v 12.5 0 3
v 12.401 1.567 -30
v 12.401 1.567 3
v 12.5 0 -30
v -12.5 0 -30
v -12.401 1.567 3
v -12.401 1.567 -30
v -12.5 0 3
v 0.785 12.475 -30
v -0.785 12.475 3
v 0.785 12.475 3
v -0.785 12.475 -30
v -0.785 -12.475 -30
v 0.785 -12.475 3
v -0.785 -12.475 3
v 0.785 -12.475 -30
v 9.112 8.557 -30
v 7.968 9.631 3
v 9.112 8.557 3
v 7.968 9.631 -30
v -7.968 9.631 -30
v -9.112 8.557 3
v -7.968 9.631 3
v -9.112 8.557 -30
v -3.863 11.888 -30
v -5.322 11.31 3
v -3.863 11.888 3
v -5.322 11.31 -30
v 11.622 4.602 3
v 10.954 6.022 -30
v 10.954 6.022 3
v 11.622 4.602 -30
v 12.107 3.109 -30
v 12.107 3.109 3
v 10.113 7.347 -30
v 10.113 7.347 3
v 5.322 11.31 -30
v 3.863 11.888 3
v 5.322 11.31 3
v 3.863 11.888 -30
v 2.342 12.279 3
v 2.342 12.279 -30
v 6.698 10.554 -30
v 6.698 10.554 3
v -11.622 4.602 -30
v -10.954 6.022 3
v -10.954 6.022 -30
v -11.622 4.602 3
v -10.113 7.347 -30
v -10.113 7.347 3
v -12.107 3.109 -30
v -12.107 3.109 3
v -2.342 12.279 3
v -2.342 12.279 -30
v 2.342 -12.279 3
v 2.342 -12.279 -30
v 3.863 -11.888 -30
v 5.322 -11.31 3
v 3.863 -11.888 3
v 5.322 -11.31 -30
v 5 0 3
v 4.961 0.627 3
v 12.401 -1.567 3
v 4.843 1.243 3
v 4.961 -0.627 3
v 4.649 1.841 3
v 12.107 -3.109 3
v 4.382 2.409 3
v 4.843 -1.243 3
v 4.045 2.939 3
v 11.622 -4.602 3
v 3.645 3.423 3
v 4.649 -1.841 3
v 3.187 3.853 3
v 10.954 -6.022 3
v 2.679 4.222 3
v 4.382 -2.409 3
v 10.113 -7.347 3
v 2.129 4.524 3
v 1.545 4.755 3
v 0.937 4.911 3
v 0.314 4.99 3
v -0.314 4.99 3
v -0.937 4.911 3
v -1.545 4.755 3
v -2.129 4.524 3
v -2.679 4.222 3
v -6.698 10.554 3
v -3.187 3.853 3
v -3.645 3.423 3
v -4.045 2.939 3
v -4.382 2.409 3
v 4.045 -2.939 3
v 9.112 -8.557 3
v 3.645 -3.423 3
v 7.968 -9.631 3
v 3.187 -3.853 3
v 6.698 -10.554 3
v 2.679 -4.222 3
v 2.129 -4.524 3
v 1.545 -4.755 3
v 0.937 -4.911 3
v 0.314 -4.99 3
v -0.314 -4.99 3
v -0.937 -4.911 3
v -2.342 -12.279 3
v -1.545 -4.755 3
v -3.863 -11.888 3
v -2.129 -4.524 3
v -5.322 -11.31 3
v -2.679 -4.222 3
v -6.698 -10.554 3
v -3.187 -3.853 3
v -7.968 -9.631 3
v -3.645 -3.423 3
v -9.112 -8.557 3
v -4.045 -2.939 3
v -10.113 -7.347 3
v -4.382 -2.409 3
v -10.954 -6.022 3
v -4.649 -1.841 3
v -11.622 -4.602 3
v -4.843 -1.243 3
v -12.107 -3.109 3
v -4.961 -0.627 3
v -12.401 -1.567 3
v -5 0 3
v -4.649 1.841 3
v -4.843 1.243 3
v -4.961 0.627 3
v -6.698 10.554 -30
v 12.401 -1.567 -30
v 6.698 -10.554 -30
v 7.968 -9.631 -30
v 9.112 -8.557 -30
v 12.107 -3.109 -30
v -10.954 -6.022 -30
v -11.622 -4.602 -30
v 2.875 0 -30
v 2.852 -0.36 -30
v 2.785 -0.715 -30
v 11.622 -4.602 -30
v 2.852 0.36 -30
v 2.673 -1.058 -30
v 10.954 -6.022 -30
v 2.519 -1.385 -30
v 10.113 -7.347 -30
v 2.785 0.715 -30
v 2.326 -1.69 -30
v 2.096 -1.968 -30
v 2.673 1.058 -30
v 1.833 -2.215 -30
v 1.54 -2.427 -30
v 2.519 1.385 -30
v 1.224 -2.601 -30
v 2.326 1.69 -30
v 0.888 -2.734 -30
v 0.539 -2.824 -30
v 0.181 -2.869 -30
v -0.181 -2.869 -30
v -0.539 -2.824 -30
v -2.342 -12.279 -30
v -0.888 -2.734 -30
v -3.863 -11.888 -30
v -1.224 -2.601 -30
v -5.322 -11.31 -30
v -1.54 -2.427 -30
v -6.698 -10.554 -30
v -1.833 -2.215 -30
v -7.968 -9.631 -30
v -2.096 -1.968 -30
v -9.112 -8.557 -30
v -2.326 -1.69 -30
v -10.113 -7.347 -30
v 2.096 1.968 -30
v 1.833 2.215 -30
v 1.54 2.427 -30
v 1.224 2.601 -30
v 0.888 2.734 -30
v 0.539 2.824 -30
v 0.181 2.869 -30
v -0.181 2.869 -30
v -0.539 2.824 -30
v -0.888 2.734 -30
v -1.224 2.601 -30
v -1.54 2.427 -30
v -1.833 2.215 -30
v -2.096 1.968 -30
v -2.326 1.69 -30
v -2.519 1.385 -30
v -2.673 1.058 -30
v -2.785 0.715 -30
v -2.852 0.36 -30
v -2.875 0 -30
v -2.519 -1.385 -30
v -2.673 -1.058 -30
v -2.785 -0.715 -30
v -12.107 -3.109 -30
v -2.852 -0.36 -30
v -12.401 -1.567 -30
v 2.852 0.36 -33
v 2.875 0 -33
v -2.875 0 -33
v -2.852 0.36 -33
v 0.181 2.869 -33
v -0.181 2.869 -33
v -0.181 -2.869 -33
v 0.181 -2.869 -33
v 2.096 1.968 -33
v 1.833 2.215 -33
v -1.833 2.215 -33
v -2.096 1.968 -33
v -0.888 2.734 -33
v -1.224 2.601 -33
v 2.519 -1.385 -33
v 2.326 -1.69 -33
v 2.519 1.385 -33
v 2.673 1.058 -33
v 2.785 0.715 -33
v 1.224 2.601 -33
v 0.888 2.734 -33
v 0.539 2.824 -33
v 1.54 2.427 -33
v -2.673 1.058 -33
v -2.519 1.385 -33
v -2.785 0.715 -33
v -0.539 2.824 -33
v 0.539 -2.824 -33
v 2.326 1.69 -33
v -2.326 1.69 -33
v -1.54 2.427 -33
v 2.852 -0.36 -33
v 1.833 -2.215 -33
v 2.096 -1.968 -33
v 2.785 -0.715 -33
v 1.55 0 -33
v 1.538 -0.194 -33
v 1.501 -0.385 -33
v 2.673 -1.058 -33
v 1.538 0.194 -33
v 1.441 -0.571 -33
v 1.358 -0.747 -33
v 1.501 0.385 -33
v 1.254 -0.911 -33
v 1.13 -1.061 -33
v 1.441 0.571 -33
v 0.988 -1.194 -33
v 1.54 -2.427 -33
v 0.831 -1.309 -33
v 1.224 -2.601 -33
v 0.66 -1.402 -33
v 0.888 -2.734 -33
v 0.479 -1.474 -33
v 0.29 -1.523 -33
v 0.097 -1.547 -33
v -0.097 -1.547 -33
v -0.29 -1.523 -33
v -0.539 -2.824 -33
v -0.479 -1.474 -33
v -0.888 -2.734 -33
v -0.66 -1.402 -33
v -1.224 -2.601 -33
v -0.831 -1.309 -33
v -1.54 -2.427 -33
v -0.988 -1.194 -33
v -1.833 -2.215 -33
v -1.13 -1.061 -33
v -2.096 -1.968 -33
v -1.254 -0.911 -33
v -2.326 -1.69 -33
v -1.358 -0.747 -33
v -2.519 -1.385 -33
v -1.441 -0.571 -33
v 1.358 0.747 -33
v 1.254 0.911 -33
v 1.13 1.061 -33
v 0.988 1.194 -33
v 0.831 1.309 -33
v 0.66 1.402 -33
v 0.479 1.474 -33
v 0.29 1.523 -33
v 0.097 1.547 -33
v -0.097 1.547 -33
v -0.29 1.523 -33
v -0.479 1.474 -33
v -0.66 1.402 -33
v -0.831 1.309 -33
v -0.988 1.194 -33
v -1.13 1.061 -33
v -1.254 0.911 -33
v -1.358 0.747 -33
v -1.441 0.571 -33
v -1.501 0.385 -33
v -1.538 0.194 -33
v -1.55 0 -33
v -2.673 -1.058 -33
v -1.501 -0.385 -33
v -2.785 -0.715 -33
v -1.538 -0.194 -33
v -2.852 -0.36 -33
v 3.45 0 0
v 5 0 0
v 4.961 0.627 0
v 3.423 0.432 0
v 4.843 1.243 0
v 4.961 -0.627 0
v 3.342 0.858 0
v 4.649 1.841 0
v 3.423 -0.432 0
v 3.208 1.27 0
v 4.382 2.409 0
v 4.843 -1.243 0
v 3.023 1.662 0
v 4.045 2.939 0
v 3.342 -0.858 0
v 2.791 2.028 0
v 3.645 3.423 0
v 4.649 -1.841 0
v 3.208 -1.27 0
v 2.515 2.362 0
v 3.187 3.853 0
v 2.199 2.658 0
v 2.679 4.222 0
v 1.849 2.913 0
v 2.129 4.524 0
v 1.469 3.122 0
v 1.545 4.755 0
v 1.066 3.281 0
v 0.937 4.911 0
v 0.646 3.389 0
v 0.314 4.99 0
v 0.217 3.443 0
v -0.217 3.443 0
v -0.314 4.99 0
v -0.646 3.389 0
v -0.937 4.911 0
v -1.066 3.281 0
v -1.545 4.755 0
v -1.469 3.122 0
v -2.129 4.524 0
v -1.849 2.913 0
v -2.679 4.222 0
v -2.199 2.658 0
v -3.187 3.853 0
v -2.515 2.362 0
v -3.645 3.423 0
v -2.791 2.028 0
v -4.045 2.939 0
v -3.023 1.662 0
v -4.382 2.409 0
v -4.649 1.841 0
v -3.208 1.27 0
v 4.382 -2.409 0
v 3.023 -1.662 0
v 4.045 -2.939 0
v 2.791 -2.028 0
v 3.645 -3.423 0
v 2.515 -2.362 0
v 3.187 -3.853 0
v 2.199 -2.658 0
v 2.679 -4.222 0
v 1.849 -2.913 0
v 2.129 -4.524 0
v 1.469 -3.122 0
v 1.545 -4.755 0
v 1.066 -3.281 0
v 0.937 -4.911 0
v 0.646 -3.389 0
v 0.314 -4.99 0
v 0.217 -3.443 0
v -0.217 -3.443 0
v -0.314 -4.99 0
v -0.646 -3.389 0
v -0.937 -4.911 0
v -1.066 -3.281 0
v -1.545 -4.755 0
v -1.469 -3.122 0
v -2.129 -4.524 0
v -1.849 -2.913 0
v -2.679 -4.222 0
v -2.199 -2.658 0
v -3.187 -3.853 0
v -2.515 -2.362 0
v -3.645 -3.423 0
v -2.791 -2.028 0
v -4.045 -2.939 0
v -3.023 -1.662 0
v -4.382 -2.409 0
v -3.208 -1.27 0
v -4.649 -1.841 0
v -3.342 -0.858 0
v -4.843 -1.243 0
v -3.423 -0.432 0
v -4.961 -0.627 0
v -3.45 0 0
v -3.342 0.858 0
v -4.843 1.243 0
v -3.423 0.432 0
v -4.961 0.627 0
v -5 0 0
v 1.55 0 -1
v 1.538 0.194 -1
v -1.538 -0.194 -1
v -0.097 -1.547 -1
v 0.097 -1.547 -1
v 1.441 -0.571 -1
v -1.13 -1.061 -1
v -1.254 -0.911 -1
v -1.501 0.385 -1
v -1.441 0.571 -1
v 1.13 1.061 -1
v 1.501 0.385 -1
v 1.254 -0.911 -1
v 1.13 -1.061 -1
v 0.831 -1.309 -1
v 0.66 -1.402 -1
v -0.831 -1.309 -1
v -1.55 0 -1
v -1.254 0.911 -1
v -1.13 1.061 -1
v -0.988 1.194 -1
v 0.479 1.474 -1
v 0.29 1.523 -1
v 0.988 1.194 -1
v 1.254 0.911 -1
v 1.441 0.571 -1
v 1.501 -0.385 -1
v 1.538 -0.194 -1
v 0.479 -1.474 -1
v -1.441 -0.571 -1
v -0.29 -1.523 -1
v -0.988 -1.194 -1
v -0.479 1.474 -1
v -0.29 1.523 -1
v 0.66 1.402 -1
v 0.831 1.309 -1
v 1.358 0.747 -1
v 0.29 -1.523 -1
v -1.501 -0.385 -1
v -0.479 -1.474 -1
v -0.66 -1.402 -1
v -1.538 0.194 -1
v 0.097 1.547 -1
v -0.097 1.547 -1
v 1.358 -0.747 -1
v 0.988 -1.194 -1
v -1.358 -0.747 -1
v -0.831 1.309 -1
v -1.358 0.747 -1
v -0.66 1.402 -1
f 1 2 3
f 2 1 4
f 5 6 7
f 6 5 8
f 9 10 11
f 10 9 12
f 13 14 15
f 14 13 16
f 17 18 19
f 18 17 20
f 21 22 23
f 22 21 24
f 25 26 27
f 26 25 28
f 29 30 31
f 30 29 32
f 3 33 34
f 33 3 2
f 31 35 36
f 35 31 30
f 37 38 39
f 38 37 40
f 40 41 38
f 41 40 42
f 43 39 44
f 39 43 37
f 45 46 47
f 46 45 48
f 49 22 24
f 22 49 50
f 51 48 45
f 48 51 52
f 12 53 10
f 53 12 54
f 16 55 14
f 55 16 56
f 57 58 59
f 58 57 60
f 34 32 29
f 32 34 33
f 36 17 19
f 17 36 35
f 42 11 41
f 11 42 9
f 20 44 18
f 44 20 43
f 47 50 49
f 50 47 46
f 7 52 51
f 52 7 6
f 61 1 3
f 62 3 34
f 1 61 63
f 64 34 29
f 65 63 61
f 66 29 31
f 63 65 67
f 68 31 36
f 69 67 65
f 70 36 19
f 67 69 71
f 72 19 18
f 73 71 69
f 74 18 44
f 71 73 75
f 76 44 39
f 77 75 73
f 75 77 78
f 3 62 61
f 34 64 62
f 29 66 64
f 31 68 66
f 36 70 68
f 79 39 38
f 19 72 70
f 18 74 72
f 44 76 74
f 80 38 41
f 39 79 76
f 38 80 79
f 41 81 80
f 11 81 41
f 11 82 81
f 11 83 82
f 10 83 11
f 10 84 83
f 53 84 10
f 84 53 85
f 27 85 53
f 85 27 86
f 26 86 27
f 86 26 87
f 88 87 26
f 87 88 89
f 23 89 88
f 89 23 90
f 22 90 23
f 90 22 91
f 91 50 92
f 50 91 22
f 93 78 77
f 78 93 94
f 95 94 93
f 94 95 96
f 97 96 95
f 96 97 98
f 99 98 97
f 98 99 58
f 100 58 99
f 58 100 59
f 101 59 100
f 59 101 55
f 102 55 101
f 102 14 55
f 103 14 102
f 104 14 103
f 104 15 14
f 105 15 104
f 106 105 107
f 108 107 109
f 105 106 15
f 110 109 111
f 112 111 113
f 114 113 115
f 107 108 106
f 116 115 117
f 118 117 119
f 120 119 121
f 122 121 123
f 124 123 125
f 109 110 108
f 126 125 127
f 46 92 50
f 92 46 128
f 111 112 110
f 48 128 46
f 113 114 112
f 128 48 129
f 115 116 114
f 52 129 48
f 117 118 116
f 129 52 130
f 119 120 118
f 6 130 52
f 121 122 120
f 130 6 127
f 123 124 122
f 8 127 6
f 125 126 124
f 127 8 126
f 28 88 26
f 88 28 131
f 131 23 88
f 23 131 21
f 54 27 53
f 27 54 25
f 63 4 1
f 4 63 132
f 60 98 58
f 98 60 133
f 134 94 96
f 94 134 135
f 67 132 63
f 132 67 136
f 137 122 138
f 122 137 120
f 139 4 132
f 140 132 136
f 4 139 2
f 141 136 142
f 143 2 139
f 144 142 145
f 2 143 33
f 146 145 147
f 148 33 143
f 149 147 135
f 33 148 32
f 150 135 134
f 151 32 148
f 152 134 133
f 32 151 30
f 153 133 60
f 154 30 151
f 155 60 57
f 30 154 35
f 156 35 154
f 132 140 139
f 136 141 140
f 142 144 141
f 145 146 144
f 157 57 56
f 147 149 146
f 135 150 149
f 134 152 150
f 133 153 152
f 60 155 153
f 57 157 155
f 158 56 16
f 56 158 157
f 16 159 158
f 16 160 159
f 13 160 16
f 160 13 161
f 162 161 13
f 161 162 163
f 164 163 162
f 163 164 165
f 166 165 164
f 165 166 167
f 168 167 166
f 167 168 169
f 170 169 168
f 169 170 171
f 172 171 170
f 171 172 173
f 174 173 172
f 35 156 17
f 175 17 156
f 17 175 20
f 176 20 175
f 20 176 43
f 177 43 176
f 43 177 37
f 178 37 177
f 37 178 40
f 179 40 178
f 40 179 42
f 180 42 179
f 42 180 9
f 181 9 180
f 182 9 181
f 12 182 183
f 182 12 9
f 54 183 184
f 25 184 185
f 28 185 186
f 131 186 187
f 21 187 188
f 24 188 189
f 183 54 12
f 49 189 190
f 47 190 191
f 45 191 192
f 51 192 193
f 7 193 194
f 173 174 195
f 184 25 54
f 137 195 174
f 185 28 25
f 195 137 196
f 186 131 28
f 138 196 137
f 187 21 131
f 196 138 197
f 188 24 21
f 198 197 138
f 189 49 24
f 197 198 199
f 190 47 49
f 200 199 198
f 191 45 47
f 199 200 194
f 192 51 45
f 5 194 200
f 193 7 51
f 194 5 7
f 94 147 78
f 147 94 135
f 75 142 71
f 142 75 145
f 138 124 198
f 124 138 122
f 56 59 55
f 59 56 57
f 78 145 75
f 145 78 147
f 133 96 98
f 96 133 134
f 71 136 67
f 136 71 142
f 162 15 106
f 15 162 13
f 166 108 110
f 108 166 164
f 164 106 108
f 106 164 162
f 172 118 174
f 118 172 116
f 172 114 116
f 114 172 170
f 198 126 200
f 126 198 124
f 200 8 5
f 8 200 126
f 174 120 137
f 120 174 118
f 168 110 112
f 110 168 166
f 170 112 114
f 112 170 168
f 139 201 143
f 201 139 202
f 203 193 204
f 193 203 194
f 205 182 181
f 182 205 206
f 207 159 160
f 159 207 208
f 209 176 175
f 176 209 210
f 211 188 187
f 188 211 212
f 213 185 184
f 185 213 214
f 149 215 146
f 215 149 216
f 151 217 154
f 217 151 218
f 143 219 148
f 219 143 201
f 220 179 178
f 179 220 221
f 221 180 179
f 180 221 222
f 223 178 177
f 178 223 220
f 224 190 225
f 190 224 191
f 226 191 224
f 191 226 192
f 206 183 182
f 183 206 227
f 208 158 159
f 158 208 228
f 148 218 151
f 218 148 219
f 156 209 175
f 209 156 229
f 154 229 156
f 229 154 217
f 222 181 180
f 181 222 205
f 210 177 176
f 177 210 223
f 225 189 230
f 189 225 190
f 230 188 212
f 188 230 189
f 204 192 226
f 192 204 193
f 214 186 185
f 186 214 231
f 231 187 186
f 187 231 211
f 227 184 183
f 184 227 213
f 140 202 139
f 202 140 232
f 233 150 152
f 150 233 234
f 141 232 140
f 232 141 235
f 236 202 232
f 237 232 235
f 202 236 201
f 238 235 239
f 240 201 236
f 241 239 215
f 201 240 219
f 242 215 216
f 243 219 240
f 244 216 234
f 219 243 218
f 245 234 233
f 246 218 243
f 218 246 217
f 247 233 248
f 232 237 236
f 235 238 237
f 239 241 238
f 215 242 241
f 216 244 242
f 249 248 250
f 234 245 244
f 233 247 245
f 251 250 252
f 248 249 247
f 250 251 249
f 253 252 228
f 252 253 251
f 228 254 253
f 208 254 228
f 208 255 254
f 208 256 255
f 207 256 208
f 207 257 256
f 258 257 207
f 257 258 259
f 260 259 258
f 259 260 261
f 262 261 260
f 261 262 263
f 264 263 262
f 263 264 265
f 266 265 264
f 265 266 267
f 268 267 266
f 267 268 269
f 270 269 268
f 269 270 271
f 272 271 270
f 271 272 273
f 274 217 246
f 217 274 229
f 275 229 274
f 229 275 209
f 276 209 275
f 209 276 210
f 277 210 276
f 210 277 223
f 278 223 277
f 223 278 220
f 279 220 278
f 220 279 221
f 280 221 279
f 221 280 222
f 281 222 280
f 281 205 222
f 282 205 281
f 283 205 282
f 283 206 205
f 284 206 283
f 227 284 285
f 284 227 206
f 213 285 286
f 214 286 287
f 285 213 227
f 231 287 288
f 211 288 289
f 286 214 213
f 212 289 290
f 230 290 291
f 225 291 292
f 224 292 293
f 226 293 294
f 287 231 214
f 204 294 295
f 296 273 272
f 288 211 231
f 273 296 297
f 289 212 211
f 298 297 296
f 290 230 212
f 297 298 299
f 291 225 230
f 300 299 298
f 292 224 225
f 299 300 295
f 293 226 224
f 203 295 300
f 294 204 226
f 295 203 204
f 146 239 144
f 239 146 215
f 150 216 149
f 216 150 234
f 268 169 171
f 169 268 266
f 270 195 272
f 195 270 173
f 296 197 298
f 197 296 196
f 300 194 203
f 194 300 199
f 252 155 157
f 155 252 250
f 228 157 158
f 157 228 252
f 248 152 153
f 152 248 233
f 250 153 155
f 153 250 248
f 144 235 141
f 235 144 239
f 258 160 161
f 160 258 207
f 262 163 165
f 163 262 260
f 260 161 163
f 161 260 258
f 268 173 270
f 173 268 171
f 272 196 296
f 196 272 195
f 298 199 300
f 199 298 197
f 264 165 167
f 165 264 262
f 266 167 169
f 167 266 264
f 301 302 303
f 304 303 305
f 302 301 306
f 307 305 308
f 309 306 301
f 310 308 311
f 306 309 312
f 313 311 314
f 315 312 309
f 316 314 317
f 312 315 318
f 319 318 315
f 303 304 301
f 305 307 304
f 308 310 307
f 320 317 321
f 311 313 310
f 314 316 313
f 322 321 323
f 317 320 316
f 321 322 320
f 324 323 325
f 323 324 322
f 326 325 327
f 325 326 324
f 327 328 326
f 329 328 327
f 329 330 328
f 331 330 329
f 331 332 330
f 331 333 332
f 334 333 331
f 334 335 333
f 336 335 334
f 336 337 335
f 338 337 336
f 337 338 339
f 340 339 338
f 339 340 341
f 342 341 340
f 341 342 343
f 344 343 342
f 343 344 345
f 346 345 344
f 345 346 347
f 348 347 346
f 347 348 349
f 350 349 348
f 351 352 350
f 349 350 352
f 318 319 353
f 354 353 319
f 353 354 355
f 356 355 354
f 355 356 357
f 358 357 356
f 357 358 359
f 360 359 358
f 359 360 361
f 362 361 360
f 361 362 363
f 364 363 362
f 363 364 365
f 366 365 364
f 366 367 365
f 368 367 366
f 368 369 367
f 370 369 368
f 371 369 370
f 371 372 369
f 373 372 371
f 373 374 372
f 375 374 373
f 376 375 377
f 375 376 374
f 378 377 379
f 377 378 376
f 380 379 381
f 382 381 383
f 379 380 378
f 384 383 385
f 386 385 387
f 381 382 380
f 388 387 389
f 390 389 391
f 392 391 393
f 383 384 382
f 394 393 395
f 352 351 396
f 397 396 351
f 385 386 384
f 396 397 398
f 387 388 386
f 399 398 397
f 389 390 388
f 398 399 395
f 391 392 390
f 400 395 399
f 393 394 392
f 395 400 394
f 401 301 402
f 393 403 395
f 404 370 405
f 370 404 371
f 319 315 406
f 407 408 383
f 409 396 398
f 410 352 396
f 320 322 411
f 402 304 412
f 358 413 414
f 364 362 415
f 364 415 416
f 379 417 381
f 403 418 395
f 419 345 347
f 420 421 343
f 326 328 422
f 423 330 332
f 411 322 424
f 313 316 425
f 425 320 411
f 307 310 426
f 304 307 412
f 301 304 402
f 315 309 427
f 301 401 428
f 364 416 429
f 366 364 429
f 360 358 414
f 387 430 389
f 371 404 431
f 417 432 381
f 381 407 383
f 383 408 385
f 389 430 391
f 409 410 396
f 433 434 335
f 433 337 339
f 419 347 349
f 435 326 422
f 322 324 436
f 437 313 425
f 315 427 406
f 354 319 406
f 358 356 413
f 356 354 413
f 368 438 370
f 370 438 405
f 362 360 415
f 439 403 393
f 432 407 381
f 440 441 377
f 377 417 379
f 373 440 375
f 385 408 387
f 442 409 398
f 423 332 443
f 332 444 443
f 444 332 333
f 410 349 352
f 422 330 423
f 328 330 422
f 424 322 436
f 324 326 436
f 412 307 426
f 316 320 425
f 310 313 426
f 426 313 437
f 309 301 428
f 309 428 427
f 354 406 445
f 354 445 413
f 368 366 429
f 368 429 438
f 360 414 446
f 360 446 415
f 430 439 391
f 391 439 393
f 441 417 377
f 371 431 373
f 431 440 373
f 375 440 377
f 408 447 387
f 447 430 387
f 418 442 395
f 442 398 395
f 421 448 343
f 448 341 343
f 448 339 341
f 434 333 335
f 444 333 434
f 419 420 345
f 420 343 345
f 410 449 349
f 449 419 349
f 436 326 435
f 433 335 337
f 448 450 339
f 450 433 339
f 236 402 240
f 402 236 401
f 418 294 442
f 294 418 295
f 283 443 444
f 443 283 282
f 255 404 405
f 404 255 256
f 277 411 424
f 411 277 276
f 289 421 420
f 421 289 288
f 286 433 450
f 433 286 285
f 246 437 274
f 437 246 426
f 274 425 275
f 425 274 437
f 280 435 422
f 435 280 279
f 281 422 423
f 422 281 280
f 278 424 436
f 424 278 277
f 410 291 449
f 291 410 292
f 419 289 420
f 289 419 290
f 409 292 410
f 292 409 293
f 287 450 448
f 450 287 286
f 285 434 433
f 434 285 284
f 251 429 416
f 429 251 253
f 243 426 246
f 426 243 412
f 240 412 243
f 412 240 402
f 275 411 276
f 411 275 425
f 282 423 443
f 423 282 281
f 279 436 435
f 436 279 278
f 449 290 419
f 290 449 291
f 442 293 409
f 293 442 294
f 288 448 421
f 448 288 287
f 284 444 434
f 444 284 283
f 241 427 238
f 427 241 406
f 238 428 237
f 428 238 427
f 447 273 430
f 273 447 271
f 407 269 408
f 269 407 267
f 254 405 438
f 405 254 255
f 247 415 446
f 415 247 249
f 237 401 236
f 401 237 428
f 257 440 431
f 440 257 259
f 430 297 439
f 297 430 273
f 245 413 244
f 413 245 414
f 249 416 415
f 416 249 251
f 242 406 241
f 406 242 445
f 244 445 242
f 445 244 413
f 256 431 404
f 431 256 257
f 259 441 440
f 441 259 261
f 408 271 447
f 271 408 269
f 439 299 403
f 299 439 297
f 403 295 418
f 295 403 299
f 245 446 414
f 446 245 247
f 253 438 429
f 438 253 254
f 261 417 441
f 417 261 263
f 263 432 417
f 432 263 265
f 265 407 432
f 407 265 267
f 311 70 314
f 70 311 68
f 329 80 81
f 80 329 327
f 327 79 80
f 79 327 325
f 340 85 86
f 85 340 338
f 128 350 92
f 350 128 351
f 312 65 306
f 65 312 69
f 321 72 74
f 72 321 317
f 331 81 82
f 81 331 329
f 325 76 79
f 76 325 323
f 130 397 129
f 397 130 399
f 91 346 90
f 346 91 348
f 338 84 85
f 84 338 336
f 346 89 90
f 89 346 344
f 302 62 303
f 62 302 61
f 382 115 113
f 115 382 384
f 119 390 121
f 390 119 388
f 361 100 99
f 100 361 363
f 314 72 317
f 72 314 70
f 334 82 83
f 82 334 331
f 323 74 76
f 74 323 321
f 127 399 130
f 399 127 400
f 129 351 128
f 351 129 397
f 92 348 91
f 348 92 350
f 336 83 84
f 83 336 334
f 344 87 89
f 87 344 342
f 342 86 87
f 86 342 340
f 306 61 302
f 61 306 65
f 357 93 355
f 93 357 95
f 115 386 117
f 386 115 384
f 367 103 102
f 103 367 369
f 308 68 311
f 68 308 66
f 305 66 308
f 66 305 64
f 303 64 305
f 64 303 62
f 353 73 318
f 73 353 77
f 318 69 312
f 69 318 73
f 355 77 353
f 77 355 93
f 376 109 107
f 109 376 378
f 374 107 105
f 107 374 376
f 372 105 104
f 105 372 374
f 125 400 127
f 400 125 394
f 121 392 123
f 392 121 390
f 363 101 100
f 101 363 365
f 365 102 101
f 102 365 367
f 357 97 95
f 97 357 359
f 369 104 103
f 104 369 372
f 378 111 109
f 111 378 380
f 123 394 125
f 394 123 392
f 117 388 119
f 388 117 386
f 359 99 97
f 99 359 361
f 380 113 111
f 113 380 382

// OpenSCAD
$fn = 50;

difference() {
	union() {
		translate(v = [0, 0, -30.0]) {
			cylinder(h = 33, r = 12.5);
		}
		#translate(v = [0, 0, -33.0]) {
			cylinder(h = 33, r = 2.875);
		}
	}
	union() {
		translate(v = [0, 0, 0]) {
			rotate(a = [0, 0, 0]) {
				difference() {
					union() {
						translate(v = [0, 0, -33.0]) {
							cylinder(h = 33, r = 1.25);
						}
						translate(v = [0, 0, -1.0]) {
							cylinder(h = 1.0, r1 = 1.55, r2 = 3.45);
						}
						translate(v = [0, 0, -33.0]) {
							cylinder(h = 33, r = 1.55);
						}
						translate(v = [0, 0, -33.0]) {
							cylinder(h = 33, r = 1.25);
						}
					}
					union();
				}
			}
		}
		#cylinder(h = 3, r = 5.0);
	}
}
